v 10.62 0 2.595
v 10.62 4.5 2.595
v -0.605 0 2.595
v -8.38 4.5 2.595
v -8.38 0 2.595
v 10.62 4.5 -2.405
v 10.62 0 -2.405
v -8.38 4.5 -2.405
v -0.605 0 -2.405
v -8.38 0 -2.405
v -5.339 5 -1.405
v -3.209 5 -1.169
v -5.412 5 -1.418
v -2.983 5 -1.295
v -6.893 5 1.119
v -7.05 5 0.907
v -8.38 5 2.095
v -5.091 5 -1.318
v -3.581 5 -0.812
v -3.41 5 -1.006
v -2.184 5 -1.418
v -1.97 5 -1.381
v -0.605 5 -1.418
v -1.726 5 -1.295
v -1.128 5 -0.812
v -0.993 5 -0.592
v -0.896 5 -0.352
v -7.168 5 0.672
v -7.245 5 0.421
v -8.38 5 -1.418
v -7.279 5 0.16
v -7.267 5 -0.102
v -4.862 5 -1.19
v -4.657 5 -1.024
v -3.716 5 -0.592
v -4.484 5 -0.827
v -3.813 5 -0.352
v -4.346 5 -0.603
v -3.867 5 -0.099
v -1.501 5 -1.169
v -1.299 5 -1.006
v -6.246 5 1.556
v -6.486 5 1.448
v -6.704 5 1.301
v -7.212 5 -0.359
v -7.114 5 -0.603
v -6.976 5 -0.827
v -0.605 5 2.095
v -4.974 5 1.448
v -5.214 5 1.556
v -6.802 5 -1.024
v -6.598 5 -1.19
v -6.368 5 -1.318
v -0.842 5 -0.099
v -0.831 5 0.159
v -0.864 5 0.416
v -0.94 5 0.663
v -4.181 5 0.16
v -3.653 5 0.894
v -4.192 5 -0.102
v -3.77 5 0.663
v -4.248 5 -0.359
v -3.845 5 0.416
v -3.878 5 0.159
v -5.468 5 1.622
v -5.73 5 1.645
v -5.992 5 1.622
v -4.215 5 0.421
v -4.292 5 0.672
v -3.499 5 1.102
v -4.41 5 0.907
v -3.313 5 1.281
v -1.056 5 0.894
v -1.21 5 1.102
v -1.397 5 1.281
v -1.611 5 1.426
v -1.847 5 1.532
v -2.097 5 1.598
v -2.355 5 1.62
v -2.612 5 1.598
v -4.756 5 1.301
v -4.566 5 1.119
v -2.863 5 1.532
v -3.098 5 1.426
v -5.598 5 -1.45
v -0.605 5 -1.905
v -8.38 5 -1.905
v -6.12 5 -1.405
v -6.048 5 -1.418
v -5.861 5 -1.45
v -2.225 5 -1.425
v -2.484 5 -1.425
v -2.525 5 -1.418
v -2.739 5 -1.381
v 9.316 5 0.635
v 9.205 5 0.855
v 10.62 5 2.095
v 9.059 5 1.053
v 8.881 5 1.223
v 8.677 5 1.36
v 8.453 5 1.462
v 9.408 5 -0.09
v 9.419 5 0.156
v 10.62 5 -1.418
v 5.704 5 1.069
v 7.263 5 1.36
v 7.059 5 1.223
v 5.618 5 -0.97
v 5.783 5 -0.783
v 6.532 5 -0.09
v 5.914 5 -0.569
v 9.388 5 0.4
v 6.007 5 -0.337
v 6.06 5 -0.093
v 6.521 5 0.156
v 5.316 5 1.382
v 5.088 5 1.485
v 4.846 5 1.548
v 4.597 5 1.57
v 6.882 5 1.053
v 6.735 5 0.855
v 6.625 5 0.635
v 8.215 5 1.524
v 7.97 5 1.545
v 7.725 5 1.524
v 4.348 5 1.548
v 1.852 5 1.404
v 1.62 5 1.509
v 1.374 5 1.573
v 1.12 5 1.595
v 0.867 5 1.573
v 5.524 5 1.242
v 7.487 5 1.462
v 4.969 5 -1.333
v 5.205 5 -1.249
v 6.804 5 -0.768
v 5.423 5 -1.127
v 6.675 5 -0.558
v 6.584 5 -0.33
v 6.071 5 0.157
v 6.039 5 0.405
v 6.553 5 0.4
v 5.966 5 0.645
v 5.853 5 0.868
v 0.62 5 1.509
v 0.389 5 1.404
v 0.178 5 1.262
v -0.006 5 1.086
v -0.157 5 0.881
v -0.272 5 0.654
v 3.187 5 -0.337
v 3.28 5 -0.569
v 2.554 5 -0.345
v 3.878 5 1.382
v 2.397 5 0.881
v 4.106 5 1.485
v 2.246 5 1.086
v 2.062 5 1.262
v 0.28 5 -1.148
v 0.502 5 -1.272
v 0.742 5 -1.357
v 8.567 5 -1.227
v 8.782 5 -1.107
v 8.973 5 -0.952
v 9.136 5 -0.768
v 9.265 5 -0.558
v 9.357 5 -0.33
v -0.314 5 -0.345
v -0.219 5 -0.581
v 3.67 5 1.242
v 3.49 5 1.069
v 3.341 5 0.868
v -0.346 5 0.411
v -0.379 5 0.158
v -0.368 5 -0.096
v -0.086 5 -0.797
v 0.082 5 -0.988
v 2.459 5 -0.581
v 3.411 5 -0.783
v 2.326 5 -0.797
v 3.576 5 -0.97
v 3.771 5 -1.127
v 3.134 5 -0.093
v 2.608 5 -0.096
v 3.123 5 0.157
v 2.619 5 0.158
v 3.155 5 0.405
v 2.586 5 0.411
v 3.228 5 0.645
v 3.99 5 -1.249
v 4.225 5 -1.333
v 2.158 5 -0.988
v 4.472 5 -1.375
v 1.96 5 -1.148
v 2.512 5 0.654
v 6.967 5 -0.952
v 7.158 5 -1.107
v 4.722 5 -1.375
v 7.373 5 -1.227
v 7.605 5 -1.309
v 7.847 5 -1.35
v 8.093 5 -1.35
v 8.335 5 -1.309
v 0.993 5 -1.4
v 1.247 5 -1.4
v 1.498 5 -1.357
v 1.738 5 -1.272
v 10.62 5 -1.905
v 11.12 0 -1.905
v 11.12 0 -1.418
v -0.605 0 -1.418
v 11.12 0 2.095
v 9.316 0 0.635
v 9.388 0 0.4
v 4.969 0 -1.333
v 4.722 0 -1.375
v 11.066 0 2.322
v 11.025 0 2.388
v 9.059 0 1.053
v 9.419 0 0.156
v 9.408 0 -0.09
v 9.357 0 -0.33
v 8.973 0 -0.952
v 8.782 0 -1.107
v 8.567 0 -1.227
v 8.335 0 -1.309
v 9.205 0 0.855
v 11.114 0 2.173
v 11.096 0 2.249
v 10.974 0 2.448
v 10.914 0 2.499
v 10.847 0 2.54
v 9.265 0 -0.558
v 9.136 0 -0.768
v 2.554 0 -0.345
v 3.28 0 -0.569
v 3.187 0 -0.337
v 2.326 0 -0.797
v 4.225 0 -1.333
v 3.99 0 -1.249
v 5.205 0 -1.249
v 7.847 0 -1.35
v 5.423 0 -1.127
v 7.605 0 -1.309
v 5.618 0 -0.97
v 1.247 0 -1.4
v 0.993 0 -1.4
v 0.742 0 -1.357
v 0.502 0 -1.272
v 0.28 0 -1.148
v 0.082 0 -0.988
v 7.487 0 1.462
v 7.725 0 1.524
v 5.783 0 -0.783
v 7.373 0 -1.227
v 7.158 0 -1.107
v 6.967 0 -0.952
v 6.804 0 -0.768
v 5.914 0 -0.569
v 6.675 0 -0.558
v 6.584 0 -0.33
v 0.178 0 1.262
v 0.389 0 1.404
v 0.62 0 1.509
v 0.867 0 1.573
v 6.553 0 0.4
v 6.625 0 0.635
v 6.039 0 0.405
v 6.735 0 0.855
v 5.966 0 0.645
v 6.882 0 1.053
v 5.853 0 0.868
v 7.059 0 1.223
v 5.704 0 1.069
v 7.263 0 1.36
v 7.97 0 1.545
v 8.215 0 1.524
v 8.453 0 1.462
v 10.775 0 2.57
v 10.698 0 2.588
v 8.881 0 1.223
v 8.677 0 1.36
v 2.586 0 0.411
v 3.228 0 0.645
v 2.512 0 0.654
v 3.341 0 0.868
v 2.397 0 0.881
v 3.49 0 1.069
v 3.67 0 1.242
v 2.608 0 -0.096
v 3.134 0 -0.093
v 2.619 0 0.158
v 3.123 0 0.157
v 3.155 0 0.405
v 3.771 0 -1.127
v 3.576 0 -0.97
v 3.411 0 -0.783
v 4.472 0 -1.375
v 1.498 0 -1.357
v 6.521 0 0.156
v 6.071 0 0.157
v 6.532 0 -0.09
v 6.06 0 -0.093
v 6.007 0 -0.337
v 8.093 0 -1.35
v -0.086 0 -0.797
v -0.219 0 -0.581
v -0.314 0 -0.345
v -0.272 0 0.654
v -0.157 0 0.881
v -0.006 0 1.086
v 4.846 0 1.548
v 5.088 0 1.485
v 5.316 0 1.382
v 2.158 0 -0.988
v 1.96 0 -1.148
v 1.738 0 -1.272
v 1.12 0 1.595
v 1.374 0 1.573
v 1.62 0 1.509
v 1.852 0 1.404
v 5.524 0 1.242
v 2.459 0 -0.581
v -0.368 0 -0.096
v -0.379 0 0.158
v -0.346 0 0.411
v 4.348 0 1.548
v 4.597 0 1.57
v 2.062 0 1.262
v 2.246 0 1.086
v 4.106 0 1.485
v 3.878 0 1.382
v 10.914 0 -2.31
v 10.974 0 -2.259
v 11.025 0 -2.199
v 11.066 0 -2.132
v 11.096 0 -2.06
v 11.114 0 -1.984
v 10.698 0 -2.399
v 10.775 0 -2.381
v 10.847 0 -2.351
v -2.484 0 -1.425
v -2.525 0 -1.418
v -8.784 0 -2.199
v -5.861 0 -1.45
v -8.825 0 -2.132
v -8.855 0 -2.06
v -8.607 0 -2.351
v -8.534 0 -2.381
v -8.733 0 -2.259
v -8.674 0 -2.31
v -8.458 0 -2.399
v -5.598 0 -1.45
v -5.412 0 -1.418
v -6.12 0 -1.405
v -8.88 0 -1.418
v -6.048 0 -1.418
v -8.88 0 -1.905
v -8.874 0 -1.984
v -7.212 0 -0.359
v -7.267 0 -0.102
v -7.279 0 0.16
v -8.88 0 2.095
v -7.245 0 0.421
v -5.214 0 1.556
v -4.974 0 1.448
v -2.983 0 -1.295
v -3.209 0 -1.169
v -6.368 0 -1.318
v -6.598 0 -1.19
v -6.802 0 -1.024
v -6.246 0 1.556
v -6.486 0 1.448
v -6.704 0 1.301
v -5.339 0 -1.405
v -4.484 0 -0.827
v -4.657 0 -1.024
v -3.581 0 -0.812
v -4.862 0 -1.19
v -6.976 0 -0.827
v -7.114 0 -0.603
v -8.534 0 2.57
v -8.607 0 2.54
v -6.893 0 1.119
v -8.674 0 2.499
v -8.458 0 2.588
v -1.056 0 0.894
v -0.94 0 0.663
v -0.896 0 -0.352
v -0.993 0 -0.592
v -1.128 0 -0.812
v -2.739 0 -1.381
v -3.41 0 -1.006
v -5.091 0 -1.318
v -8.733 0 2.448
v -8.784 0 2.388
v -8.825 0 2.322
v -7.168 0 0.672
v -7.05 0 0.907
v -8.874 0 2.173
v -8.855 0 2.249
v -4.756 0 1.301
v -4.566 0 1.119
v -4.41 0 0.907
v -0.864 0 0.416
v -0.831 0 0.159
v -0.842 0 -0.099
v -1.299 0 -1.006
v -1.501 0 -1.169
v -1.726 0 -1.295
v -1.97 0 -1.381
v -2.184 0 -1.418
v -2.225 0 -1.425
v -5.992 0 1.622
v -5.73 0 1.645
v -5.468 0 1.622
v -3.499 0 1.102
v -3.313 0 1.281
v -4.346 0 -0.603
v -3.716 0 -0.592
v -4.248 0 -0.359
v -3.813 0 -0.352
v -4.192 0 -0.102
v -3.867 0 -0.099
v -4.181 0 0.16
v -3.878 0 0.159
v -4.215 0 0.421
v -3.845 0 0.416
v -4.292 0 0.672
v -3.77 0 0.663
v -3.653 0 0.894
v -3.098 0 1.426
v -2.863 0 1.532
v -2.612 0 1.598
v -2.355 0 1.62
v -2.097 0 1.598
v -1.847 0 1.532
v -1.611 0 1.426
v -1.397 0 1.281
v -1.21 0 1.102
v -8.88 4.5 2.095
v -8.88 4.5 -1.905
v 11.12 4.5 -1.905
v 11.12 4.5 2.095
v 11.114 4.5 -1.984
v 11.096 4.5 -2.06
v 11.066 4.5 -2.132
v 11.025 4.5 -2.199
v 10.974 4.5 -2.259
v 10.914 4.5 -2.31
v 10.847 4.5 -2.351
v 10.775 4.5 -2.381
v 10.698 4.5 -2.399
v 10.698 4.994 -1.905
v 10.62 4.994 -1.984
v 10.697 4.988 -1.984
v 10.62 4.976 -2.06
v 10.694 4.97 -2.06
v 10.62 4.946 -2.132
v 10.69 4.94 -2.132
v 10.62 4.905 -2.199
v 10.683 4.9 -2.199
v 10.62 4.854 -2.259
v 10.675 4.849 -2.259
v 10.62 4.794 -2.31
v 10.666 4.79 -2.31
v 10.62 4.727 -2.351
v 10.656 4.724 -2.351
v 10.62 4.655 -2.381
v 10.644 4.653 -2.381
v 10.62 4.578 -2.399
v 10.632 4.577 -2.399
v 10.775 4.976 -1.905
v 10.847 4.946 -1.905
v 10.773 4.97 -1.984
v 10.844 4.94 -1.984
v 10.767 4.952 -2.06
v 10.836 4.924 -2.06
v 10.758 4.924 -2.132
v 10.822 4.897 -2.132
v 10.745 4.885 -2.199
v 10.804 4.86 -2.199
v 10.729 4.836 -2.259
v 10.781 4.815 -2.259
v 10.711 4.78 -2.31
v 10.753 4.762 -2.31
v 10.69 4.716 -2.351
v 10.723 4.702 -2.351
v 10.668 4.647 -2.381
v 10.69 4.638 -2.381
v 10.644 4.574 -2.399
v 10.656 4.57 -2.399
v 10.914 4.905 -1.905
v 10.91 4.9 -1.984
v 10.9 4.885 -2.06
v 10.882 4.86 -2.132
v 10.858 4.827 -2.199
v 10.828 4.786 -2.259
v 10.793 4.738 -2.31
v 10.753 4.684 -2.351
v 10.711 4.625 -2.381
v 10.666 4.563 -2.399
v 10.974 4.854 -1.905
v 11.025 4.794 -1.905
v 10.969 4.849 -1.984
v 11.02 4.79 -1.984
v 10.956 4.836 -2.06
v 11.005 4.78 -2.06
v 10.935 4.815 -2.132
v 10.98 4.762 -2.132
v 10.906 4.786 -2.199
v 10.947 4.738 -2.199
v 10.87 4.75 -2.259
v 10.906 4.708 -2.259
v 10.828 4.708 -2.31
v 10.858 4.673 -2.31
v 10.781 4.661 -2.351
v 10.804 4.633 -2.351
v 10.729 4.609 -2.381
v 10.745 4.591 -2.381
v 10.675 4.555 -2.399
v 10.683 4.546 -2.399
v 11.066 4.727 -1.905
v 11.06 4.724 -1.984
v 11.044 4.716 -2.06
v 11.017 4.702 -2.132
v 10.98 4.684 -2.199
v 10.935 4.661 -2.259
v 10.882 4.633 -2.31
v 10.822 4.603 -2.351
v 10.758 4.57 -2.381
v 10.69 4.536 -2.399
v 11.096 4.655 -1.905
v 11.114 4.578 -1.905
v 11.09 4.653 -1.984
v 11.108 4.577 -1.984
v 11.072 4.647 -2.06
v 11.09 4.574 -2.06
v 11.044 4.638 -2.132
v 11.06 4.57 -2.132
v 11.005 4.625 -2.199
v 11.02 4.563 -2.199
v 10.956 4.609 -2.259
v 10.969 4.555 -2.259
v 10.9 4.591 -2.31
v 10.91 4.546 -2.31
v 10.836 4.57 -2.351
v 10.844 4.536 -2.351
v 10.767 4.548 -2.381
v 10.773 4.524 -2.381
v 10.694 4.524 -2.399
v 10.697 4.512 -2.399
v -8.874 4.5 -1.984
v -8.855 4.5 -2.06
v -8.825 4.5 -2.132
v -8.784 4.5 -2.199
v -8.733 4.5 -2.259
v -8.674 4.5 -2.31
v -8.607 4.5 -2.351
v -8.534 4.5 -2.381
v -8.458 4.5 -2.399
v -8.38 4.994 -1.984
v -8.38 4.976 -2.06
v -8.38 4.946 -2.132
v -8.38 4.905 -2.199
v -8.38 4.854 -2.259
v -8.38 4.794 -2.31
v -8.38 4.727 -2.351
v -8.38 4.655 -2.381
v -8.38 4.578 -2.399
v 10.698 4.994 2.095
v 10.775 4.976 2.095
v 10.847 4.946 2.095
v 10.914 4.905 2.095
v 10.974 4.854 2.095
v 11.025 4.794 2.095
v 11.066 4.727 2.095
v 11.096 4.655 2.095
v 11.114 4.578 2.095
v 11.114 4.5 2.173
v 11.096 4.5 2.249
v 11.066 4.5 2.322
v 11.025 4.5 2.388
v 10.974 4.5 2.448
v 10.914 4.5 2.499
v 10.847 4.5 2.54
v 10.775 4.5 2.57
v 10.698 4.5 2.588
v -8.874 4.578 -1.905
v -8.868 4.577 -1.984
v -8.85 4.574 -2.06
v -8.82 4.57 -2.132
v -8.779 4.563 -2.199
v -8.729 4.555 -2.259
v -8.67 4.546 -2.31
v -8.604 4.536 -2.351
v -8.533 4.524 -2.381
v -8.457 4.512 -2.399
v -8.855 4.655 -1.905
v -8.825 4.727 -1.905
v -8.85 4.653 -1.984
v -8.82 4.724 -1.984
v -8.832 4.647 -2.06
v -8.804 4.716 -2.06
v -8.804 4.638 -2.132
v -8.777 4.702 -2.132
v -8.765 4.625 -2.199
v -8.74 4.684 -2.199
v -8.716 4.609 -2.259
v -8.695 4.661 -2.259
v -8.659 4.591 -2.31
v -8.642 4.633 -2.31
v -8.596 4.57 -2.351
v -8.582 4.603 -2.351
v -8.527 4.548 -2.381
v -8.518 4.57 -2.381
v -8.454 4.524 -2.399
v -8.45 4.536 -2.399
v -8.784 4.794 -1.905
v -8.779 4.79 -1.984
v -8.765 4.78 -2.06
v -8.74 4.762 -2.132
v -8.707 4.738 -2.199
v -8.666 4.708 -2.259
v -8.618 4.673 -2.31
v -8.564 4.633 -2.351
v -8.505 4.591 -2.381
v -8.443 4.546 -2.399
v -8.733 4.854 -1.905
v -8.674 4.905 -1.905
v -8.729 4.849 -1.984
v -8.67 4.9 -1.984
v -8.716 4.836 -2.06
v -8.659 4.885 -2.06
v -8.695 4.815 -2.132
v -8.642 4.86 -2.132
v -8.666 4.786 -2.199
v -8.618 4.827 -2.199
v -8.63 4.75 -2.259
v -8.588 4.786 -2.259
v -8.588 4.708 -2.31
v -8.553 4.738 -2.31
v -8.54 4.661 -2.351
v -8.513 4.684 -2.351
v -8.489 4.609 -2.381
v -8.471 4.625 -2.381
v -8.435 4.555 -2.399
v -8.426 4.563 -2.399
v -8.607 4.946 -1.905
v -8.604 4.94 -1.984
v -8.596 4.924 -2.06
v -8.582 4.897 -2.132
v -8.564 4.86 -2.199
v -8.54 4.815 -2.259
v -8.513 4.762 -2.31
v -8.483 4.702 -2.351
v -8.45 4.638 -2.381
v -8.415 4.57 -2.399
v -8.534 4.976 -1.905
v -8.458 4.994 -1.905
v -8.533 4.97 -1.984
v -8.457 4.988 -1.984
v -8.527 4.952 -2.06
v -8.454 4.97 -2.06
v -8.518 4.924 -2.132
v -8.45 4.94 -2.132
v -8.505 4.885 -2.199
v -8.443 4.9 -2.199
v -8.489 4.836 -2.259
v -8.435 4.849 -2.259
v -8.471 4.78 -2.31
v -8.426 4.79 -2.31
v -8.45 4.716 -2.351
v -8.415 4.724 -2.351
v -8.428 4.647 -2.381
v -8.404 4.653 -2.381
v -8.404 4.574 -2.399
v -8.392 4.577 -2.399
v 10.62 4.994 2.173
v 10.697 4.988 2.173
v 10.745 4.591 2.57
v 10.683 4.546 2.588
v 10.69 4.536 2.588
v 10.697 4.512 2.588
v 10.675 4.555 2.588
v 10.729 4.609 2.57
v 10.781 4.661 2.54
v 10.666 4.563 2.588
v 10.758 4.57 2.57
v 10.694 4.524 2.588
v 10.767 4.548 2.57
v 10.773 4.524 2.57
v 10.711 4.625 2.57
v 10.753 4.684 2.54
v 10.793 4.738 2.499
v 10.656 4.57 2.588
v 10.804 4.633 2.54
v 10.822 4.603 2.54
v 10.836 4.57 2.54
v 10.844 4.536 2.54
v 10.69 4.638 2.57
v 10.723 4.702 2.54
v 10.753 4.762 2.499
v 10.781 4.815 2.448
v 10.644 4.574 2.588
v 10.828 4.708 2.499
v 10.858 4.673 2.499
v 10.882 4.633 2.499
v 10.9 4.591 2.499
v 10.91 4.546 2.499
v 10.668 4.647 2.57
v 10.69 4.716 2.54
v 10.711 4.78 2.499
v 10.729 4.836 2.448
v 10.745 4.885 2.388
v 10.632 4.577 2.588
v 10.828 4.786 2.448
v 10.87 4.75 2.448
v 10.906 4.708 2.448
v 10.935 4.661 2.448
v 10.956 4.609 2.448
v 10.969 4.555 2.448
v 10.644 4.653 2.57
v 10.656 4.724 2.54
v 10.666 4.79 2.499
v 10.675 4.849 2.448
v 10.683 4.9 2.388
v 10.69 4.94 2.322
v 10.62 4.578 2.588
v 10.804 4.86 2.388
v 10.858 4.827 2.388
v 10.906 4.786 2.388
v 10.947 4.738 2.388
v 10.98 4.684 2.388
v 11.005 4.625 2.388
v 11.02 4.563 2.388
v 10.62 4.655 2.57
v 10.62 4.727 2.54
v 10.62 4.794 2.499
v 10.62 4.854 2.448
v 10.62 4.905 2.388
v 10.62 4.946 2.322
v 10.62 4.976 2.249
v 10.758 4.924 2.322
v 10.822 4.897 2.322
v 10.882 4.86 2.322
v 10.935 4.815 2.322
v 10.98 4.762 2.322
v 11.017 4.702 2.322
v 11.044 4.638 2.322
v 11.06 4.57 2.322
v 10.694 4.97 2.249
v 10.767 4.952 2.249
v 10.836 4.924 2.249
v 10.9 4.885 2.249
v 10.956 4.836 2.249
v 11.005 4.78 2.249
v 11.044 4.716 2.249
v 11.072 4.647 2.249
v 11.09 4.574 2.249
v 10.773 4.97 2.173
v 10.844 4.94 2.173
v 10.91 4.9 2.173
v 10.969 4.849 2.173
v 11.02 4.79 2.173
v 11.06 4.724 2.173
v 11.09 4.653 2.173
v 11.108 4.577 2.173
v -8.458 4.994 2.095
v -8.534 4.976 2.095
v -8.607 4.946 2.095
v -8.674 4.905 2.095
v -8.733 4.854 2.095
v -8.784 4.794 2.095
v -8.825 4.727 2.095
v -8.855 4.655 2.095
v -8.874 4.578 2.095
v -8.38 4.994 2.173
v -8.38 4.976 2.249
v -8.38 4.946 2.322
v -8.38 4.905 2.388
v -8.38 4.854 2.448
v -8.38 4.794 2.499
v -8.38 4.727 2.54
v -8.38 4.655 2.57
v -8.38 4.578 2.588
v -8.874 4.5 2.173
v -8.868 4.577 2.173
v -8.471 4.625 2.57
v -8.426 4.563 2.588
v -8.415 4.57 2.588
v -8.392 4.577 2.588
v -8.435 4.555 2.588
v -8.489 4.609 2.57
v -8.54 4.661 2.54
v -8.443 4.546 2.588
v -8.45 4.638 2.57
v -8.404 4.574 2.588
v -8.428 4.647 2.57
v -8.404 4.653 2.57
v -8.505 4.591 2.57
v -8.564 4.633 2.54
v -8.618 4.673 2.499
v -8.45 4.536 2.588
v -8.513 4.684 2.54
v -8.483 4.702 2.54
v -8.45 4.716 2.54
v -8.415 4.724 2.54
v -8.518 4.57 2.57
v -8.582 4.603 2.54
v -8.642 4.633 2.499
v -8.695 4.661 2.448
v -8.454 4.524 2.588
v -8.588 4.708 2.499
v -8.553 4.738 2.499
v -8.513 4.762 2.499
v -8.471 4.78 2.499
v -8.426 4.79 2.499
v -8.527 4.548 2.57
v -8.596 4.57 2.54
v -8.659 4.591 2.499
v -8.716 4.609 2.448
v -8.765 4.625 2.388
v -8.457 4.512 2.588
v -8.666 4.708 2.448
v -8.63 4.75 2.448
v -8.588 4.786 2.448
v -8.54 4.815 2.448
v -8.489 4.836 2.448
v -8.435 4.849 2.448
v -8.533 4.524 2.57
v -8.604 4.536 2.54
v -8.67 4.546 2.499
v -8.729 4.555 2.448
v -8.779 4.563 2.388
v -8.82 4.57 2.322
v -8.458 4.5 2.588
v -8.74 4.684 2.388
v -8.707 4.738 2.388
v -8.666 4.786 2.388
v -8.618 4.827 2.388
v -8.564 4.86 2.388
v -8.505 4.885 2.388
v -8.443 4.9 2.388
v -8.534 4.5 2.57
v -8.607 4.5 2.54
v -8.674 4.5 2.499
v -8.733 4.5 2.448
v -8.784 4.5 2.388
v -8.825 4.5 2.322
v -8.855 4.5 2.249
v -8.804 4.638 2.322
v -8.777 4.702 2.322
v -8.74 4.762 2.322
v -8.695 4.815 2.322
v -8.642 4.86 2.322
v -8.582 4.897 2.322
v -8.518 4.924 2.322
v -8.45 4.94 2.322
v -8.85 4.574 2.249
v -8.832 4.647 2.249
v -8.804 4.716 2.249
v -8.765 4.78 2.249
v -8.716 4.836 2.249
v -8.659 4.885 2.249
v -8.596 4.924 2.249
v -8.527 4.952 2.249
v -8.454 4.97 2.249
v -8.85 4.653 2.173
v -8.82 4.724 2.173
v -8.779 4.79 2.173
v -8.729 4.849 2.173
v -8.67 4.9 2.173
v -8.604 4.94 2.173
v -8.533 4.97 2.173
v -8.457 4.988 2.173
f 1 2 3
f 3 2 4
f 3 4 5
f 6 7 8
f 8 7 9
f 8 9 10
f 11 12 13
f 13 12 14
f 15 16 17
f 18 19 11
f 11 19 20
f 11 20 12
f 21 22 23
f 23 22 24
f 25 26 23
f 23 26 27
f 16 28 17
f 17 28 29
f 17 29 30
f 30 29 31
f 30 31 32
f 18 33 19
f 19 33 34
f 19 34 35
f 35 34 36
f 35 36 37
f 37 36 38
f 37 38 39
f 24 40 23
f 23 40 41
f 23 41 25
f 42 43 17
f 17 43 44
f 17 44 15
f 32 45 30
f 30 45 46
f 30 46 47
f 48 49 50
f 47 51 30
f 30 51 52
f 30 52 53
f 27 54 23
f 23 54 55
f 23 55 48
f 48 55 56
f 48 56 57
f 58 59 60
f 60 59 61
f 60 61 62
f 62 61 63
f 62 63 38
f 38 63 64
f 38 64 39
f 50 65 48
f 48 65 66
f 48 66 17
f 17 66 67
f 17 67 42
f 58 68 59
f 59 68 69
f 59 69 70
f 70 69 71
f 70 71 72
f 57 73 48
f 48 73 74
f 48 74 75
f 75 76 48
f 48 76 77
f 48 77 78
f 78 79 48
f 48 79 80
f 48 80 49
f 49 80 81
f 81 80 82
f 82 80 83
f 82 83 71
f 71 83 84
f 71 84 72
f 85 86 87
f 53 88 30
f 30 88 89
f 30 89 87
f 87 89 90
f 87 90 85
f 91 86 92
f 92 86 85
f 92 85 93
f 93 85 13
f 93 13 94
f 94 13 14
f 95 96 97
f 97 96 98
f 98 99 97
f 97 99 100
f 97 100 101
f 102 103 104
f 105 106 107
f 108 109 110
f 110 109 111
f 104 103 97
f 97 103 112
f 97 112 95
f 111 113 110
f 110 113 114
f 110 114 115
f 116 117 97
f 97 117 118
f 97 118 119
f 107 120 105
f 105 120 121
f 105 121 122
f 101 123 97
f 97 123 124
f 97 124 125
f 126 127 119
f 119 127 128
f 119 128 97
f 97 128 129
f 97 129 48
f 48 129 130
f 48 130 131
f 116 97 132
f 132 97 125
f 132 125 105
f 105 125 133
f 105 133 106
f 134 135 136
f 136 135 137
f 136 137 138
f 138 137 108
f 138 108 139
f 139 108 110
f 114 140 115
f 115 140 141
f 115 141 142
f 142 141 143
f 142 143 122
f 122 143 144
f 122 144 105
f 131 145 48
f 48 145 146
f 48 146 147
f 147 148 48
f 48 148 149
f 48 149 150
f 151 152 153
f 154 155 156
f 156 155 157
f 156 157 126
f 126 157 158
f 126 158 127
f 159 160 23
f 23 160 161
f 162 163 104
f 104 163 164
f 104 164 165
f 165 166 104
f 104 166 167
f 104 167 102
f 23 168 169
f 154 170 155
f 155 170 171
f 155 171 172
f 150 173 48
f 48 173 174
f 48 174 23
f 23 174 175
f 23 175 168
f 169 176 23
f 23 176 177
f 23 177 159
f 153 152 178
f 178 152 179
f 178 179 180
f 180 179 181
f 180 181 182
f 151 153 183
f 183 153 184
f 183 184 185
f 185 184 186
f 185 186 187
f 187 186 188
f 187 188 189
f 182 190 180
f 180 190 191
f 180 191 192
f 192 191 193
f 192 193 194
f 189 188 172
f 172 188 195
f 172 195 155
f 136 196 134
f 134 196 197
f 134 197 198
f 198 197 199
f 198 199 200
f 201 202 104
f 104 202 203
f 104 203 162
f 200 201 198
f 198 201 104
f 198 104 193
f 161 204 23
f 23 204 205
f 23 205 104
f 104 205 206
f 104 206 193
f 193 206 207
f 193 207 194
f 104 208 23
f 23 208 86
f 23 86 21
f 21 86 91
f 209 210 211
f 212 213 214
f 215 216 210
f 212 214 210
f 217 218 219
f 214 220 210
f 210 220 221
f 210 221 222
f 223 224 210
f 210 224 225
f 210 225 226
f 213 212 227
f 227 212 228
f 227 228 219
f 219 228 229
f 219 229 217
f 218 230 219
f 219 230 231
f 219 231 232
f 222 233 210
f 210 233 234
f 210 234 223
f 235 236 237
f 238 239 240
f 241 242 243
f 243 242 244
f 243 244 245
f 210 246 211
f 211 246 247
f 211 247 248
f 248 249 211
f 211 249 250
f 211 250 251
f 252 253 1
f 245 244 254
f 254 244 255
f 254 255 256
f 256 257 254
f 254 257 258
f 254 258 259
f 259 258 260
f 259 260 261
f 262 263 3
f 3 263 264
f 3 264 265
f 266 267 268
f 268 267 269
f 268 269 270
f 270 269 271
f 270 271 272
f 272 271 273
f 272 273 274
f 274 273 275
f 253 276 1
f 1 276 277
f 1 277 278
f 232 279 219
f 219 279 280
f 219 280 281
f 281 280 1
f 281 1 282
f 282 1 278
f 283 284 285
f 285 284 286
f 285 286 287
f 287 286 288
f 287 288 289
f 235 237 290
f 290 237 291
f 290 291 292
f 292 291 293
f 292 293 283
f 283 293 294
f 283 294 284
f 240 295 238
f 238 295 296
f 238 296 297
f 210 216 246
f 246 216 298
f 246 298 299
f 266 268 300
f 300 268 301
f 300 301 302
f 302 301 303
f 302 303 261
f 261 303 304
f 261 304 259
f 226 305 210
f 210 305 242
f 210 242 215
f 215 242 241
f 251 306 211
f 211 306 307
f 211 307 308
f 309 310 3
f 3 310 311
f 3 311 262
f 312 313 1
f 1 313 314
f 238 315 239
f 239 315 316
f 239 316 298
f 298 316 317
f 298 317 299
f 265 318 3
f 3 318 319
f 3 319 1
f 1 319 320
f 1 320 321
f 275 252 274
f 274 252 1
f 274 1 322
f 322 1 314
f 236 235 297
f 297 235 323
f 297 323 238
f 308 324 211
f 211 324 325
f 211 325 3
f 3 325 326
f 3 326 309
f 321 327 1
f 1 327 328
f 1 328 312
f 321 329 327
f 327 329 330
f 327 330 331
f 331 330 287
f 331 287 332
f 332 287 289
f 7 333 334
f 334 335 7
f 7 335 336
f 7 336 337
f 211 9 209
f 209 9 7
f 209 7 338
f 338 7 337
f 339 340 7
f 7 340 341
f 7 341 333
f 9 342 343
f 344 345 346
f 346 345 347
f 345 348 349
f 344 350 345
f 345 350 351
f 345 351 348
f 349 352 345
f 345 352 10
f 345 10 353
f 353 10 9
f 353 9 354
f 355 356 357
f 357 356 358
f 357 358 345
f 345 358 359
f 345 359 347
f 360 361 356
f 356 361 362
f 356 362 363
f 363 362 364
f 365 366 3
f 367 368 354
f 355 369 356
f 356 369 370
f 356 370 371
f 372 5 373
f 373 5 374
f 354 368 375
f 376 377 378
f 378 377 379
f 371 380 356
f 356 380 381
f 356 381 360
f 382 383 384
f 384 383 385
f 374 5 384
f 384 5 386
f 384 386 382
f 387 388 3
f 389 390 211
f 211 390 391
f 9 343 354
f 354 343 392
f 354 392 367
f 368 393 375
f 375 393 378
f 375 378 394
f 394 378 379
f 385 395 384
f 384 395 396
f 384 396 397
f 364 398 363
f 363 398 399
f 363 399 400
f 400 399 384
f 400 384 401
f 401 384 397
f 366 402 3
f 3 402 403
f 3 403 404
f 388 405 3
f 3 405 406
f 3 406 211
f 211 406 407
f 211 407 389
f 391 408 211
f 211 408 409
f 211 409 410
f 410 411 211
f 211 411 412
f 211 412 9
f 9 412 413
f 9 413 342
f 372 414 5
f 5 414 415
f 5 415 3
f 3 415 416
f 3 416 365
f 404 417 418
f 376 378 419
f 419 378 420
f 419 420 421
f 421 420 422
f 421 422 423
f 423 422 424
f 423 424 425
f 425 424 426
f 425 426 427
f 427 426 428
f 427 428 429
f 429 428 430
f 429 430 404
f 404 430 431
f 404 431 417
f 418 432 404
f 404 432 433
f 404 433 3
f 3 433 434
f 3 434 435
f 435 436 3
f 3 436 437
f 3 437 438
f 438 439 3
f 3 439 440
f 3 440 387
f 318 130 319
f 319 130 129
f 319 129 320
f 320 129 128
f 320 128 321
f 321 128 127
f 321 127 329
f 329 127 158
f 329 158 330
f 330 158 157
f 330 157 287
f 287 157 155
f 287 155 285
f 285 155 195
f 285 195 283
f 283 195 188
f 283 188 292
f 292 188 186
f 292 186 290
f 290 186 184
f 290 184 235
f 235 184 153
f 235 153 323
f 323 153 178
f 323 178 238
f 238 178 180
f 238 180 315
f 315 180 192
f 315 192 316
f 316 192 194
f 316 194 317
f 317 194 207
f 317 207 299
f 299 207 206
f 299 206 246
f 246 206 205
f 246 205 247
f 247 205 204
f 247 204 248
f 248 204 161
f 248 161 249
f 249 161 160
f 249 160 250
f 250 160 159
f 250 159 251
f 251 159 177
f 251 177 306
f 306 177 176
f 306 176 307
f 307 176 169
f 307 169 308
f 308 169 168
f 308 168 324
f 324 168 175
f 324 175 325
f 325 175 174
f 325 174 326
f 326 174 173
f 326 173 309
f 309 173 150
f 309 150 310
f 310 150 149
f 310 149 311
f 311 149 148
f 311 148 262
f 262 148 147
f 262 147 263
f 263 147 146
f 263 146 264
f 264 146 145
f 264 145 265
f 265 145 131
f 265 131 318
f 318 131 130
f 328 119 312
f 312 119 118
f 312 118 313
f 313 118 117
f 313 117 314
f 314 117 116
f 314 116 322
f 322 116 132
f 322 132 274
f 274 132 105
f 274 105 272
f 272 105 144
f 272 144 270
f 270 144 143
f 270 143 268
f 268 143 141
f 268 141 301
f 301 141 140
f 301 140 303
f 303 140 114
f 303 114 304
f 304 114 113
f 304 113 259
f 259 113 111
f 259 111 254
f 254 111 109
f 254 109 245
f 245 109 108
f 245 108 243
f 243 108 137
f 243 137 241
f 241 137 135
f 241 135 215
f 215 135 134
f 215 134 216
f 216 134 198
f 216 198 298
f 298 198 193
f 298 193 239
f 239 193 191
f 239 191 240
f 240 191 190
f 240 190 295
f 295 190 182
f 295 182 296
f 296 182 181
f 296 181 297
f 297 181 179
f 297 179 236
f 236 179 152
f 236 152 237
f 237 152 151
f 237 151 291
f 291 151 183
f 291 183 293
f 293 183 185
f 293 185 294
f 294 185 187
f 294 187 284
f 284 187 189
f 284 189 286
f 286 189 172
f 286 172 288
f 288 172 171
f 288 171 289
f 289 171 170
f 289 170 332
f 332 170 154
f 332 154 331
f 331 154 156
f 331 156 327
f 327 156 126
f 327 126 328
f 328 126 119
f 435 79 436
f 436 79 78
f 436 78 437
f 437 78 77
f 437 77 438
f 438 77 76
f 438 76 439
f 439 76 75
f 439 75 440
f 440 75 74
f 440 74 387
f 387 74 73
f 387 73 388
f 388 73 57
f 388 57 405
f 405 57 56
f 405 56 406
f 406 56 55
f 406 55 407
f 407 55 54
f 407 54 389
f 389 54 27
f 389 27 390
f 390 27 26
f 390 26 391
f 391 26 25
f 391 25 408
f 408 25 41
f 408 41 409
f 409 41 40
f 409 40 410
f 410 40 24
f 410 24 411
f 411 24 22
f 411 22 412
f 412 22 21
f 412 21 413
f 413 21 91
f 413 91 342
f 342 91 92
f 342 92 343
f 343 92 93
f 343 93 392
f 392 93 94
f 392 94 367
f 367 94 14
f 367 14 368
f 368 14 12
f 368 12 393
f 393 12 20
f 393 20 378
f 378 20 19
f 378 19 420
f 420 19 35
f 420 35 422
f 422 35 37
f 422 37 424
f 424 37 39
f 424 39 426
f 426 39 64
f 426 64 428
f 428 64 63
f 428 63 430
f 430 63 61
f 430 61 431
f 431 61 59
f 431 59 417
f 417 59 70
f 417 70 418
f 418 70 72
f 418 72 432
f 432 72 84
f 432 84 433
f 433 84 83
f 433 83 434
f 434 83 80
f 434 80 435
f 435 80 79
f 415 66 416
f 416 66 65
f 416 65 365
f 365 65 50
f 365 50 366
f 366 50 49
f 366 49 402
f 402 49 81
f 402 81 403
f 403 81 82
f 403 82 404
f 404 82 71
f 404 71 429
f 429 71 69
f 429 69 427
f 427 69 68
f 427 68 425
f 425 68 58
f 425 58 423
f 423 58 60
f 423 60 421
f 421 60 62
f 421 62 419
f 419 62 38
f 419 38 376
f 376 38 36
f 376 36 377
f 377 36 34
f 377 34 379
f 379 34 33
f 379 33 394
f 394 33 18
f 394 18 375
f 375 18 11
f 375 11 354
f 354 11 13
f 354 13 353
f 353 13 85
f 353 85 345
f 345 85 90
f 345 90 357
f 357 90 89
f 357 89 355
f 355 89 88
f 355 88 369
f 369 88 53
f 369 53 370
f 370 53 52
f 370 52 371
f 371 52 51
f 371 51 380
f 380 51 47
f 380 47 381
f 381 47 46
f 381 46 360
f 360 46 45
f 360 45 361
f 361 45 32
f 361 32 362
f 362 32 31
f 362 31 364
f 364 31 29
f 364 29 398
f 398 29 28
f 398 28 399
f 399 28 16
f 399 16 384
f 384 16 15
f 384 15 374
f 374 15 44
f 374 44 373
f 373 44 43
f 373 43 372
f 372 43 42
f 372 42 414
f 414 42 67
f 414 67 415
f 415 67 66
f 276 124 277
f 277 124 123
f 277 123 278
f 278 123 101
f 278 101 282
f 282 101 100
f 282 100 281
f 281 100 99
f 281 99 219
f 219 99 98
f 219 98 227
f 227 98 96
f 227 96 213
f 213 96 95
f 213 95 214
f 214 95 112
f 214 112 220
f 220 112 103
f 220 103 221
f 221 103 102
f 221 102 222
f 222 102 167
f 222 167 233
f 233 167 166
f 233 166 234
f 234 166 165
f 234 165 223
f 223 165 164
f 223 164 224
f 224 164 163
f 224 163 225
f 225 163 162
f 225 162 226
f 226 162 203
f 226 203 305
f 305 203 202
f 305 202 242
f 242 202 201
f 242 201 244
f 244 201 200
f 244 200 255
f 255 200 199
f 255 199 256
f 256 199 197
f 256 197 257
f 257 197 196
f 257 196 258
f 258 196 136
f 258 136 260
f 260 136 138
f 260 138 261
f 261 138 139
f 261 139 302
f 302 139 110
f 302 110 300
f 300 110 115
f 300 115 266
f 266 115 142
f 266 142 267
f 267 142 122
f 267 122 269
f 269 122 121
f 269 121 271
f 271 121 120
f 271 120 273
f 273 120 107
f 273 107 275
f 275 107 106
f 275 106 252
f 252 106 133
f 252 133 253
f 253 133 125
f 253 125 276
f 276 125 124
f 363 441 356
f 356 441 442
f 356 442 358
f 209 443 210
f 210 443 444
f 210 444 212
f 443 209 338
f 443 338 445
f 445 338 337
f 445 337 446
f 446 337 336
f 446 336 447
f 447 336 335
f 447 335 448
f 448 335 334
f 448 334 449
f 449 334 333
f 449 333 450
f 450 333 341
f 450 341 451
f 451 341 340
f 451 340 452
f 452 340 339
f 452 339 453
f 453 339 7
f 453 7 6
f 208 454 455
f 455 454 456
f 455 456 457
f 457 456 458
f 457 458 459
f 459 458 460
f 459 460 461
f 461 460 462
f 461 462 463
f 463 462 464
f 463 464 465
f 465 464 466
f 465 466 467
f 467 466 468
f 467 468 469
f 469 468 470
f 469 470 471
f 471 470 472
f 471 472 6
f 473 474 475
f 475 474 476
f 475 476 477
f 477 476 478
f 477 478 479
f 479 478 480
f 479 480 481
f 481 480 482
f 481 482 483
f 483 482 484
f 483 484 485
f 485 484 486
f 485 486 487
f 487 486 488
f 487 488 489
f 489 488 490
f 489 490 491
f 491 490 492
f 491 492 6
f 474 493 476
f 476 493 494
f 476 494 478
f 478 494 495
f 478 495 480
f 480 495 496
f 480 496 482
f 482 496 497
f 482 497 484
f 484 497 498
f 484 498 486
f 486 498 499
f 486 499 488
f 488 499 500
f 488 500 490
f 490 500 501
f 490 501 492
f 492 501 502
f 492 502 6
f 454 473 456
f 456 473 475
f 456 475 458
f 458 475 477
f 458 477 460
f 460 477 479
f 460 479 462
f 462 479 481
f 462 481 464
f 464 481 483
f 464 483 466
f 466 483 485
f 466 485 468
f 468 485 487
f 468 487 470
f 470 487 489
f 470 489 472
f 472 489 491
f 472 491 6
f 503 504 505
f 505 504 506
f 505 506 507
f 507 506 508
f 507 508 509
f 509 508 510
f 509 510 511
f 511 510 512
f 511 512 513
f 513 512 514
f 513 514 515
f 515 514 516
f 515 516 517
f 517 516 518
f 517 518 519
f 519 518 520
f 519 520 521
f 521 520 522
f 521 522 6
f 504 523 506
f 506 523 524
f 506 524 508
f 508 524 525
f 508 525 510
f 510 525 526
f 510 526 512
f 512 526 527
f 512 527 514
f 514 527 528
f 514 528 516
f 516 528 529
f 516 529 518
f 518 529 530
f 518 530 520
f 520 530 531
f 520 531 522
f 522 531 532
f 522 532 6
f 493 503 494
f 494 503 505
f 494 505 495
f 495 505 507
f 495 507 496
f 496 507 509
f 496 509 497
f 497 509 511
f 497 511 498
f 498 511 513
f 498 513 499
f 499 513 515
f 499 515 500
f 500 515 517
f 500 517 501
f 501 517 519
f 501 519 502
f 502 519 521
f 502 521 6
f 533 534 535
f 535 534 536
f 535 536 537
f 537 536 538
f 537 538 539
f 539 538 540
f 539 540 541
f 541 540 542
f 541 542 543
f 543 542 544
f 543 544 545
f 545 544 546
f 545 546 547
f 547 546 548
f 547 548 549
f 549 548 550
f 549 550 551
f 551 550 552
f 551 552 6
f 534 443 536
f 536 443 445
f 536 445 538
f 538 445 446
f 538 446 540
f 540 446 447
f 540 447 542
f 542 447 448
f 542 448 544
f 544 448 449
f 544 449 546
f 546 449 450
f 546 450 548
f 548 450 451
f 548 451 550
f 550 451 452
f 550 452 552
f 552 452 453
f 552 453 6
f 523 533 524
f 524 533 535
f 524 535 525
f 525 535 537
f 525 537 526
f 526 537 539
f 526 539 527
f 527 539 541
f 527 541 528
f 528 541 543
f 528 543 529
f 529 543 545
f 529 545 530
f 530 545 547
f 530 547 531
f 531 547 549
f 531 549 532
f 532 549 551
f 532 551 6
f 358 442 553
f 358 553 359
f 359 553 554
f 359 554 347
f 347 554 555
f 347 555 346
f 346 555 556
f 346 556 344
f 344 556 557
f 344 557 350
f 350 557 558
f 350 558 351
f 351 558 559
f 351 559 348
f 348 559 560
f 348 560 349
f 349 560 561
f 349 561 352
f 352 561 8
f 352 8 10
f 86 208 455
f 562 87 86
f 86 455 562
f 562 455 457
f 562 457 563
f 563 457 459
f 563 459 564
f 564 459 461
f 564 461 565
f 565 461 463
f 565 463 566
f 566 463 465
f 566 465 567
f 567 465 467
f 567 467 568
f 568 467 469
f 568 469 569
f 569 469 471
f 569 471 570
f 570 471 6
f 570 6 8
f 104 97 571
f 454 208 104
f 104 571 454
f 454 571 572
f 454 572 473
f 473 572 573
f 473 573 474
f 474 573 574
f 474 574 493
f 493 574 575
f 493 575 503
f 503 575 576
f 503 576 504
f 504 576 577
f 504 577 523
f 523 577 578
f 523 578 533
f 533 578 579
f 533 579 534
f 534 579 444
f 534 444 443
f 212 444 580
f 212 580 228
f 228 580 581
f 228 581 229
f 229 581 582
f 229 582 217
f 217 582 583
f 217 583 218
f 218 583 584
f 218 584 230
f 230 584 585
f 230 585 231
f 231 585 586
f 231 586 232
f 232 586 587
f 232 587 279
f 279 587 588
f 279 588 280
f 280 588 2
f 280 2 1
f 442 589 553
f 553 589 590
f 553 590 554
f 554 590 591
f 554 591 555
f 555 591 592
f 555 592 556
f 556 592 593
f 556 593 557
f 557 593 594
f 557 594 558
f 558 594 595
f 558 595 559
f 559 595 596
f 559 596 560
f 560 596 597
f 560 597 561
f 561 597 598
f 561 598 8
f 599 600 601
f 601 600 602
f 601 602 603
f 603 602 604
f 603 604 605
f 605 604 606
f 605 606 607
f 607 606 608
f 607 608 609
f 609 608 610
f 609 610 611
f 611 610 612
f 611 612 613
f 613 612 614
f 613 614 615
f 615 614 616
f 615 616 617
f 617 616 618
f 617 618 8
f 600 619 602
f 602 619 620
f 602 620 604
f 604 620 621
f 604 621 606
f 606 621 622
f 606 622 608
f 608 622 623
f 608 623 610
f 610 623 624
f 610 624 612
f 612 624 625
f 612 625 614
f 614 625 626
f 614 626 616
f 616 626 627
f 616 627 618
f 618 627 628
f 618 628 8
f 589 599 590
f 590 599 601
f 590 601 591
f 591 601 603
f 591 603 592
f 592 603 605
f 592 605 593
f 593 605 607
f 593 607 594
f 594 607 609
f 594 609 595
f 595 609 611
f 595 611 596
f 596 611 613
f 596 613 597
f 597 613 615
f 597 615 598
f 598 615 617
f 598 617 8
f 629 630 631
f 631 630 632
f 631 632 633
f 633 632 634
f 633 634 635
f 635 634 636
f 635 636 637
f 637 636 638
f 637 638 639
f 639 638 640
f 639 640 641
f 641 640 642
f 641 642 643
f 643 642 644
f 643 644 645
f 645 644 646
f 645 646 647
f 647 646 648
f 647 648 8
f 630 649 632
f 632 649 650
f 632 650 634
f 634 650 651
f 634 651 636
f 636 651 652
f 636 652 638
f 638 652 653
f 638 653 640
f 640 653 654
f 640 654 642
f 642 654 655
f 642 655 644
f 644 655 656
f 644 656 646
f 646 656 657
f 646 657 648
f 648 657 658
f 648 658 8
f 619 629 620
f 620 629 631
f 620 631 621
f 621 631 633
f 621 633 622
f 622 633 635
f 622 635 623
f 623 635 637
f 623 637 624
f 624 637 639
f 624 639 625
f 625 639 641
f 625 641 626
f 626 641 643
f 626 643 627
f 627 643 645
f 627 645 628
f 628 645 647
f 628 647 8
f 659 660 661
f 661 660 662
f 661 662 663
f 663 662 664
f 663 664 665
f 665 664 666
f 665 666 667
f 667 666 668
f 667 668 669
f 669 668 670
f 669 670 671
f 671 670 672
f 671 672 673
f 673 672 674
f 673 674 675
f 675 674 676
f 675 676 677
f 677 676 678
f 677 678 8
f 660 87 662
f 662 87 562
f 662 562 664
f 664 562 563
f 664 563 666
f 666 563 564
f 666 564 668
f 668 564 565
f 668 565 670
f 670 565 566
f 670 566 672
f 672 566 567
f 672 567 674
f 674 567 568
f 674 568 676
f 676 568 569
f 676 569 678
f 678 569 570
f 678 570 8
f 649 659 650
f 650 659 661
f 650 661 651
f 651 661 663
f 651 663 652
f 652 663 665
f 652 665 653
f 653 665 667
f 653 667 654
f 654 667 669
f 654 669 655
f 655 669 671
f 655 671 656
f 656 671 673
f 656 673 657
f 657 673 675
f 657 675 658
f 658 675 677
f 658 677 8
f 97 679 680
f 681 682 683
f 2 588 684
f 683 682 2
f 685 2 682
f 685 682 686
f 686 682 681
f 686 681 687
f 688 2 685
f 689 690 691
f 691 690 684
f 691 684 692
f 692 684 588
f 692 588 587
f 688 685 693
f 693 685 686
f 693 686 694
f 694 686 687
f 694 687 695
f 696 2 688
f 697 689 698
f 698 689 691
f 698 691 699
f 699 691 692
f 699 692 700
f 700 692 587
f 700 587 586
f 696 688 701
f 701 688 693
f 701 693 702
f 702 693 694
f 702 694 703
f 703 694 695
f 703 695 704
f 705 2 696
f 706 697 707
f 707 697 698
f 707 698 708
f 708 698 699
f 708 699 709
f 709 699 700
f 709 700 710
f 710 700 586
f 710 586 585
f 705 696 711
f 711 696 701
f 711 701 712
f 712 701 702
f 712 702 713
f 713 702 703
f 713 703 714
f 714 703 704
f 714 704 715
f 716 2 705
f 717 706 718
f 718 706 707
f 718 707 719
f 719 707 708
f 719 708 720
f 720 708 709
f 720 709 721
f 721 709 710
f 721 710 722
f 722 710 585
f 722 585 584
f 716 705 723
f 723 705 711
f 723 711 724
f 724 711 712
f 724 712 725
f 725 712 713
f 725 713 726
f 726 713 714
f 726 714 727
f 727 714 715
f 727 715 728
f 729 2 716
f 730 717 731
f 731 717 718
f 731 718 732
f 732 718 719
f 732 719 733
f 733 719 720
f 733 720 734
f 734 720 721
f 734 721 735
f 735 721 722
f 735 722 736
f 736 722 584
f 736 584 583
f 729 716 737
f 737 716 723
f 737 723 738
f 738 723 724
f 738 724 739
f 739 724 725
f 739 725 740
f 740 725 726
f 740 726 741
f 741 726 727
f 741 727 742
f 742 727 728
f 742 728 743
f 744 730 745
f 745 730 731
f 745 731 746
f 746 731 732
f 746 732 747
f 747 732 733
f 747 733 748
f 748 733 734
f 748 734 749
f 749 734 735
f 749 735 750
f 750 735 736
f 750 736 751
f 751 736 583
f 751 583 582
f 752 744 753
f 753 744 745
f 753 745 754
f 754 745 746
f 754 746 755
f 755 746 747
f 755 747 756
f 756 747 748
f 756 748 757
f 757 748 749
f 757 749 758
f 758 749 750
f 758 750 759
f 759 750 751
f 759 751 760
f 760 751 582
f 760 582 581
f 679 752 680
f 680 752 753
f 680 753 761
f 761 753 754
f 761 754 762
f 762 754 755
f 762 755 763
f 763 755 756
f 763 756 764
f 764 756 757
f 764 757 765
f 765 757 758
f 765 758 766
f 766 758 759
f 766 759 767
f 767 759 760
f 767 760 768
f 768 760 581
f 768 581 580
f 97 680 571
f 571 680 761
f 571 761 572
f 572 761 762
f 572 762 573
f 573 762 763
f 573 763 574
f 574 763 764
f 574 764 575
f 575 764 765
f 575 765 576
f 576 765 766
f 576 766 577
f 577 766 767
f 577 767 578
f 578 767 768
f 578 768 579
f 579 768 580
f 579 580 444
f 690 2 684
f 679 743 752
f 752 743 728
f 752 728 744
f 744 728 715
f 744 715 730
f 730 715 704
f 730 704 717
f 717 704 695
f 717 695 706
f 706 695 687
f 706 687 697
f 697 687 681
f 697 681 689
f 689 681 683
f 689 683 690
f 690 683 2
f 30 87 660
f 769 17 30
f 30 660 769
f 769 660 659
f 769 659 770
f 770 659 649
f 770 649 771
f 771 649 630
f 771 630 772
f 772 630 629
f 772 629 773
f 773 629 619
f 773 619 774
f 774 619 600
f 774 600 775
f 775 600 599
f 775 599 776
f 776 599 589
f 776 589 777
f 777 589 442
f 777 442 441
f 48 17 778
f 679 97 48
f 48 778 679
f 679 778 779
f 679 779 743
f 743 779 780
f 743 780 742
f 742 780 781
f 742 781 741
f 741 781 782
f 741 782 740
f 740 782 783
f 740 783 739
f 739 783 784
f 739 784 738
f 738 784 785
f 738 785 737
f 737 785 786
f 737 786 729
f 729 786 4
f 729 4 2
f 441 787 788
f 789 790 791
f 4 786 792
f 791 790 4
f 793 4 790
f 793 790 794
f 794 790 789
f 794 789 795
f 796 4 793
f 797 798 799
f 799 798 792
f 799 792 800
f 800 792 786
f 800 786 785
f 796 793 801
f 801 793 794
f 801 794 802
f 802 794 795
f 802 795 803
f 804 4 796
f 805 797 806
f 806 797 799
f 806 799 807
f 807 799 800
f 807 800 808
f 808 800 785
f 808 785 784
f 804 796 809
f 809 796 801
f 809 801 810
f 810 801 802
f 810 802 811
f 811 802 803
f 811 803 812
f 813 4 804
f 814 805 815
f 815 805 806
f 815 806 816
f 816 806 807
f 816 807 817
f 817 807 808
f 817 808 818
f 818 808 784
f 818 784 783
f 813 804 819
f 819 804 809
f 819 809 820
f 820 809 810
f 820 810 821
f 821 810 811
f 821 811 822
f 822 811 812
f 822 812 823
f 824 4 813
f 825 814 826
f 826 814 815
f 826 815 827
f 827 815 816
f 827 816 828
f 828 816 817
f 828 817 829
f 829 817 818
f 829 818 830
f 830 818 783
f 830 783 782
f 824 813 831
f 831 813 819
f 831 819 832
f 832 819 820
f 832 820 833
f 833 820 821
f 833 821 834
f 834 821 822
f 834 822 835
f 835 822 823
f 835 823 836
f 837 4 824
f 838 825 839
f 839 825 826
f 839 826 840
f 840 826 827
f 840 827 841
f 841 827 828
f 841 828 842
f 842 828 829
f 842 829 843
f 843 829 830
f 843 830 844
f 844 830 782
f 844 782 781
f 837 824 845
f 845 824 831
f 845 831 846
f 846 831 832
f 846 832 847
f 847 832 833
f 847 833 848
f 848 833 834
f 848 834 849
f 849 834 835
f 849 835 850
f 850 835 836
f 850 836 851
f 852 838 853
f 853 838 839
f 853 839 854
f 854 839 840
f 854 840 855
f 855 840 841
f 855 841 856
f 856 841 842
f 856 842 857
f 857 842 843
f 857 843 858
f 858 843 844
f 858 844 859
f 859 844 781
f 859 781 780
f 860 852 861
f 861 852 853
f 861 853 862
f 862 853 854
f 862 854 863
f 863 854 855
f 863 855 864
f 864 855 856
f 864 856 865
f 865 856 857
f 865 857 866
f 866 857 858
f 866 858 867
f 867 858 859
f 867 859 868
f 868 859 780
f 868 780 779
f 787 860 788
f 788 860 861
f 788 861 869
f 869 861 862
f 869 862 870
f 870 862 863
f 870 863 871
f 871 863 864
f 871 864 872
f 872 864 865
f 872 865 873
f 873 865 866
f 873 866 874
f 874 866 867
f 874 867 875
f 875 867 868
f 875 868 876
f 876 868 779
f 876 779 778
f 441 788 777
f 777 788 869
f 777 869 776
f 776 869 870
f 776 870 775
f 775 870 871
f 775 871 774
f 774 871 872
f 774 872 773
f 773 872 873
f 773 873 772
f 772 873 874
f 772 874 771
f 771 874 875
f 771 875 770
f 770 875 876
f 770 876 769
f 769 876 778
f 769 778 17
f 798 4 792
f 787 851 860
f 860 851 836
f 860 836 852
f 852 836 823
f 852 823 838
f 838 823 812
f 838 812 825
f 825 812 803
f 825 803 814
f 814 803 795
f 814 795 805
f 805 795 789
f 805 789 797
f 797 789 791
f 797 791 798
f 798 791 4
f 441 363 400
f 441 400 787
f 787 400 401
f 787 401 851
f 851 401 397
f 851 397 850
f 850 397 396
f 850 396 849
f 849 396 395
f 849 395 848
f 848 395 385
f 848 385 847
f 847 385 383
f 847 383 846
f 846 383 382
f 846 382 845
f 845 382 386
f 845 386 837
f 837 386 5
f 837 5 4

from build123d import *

# Parameters (mm, degrees)
SKETCH2_W           = 17
SKETCH2_H           = 5
BOSS_EXTRUDE1_DEPTH = 5
SKETCH3_R           = 1.5
SKETCH3_R_2         = 1.45
SKETCH3_R_3         = 1.55
SKETCH3_R_4         = 1.525
SKETCH3_R_5         = 1.475
CUT_EXTRUDE1_DEPTH  = 6
SKETCH4_W           = 5
SKETCH4_H           = 5
BOSS_EXTRUDE2_DEPTH = 1.5
SKETCH5_W           = 5
SKETCH5_H           = 5
BOSS_EXTRUDE3_DEPTH = 1.5
FILLET1_R           = 0.5


with BuildPart() as part:
    # Sketch2 → Boss-Extrude1 (new body)
    with BuildSketch(Plane(origin=(0, 0, 0), x_dir=(1, 0, 0), z_dir=(0, 1, 0))):
        with Locations((1.12006706, -0.094563726)):
            Rectangle(SKETCH2_W, SKETCH2_H)
    extrude(amount=BOSS_EXTRUDE1_DEPTH)

    # Sketch3 → Cut-Extrude1 (cut, through all)
    with BuildSketch(Plane(origin=(0, 5, 0), x_dir=(1, 0, 0), z_dir=(0, 1, 0))):
        with Locations((1.12006706, -0.094563726)):
            Circle(SKETCH3_R)
        with Locations((7.97006706, -0.094563726)):
            Circle(SKETCH3_R_2)
        with Locations((-5.72993294, -0.094563726)):
            Circle(SKETCH3_R_3)
        with Locations((-2.354549871, -0.094563726)):
            Circle(SKETCH3_R_4)
        with Locations((4.597069825, -0.094563726)):
            Circle(SKETCH3_R_5)
    extrude(amount=-CUT_EXTRUDE1_DEPTH, mode=Mode.SUBTRACT)

    # Sketch4 → Boss-Extrude2 (add)
    with BuildSketch(Plane.ZY.offset(7.37993294)):
        with Locations((0.094563726, 2.5)):
            Rectangle(SKETCH4_W, SKETCH4_H)
    extrude(amount=BOSS_EXTRUDE2_DEPTH)

    # Sketch5 → Boss-Extrude3 (add)
    with BuildSketch(Plane(origin=(9.62006706, 0, 0), x_dir=(0, 0, -1), z_dir=(1, 0, 0))):
        with Locations((-0.094563726, 2.5)):
            Rectangle(SKETCH5_W, SKETCH5_H)
    extrude(amount=BOSS_EXTRUDE3_DEPTH)

    # Fillet1
    fillet1_edges = [part.edges().sort_by_distance(p)[0] for p in [
        (1.12006706, 5, -2.405436274),
        (-8.87993294, 2.5, -2.405436274),
        (-8.87993294, 2.5, 2.594563726),
        (-8.87993294, 5, 0.094563726),
        (11.12006706, 2.5, 2.594563726),
        (11.12006706, 2.5, -2.405436274),
        (11.12006706, 5, 0.094563726),
        (1.12006706, 5, 2.594563726),
    ]]
    fillet(fillet1_edges, radius=FILLET1_R)


solid = part.part
